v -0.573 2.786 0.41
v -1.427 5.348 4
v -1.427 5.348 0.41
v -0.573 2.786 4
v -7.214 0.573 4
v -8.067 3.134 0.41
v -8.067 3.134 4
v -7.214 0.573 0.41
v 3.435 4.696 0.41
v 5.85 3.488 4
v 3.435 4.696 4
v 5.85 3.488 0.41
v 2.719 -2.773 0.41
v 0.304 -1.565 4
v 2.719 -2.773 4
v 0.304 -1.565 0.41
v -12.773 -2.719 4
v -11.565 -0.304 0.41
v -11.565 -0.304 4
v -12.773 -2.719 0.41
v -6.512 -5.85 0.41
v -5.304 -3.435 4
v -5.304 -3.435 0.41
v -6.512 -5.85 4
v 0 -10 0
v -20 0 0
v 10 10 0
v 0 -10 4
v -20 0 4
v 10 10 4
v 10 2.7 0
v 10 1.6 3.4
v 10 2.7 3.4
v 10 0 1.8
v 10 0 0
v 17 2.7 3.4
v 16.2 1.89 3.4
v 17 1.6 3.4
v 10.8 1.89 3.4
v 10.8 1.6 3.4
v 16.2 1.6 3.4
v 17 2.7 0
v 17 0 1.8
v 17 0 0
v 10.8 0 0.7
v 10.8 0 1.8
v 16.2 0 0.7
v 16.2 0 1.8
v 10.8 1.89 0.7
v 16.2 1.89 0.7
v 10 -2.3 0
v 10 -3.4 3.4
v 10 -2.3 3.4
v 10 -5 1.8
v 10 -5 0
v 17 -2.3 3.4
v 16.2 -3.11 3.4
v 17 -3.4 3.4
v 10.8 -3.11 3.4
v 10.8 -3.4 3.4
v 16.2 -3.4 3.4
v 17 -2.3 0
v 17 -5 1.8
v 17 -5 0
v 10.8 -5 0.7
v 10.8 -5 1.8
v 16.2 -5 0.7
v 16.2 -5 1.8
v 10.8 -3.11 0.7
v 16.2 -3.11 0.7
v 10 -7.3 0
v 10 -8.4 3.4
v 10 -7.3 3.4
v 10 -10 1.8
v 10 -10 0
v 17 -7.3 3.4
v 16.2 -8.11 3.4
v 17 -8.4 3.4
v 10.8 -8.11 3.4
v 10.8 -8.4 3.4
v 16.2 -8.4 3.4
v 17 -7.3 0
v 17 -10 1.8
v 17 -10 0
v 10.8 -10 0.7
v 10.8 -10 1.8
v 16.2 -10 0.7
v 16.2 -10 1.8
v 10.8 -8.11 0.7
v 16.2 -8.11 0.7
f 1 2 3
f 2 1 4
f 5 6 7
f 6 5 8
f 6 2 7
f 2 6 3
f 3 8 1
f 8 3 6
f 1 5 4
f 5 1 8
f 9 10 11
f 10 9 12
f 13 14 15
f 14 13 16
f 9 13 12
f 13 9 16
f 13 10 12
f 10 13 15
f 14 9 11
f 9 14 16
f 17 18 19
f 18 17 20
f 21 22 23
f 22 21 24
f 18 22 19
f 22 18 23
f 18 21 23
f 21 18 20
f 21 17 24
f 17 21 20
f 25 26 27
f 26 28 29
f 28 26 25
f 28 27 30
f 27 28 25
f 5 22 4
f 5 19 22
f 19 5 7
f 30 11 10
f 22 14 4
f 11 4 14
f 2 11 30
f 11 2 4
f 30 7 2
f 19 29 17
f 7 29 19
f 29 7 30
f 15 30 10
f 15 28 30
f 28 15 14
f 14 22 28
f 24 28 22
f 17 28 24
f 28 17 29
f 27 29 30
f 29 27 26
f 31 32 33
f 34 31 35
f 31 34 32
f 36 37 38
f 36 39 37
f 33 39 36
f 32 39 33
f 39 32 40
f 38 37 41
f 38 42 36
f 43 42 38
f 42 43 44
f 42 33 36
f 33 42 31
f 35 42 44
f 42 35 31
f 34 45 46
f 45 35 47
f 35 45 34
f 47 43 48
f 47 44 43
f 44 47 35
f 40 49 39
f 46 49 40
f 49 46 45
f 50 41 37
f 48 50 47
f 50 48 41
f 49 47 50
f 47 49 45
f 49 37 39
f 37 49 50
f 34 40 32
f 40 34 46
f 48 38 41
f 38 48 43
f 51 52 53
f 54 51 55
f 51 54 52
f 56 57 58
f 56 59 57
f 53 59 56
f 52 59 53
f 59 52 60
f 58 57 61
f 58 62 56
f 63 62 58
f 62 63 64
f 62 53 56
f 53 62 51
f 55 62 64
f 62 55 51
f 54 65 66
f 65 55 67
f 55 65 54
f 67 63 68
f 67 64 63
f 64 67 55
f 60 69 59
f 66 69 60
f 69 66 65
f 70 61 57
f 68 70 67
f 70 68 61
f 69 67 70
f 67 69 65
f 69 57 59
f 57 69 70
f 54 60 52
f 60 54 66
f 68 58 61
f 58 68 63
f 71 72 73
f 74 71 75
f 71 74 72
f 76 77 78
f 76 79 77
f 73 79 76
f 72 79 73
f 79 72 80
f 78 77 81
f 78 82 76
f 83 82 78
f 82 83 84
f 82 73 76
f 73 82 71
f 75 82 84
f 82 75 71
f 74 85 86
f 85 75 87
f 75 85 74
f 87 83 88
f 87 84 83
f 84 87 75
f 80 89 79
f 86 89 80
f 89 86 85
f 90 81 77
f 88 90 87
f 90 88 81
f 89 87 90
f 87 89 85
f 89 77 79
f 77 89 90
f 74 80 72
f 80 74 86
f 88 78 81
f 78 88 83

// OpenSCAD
magnet_width = 5;
magnet_height = 2.5;
magnet_depth = 1.5;
magnet_gap = .4;
magnet_wall = .8;
magnet_cover = .7;

module magnet_hole(p, q, thickness) {
    x = (q-p) / norm(q-p);
    y = [-x[1], x[0]];
    a = -90 + atan2(-x[0], x[1]);
    v = (p+q) / 2;
    width = magnet_width + magnet_gap + 2*magnet_wall;
    depth = magnet_depth + magnet_gap + magnet_wall;
    height = magnet_height + magnet_gap + magnet_cover;
    translate(v)
    rotate(a)
    translate([-width/2, 0.8,  thickness - height + 0.01])
    cube([width, depth, height]);
}

module magnet_holder() {
    width = magnet_width + magnet_gap + 2*magnet_wall;
    depth = magnet_depth + magnet_gap + magnet_wall;
    height = magnet_height + magnet_gap + magnet_cover;
    difference() {
        cube([width, depth, height-.2]);
        translate([magnet_wall, -0.01, magnet_cover])
        cube([width-2*magnet_wall, depth-magnet_wall, height]);
        translate([0,0,5/sqrt(2)+height/2])
        rotate([45,0,0])
        cube([100,5,5], center=true);
    }
}

module magnet_cut_outs(edges, thickness) {
    difference() {
        children();
        for (edge=edges) magnet_hole(edge[0], edge[1], thickness);
    }
}

A = [-20, 0];
B = [10, 10];
C = [0, -10];
magnet_cut_outs([[A,B],[B,C],[C,A]],4)
linear_extrude(4)
polygon([A, B, C]);

for (y=[0,5,10])
translate([10,-y,0])
magnet_holder();
